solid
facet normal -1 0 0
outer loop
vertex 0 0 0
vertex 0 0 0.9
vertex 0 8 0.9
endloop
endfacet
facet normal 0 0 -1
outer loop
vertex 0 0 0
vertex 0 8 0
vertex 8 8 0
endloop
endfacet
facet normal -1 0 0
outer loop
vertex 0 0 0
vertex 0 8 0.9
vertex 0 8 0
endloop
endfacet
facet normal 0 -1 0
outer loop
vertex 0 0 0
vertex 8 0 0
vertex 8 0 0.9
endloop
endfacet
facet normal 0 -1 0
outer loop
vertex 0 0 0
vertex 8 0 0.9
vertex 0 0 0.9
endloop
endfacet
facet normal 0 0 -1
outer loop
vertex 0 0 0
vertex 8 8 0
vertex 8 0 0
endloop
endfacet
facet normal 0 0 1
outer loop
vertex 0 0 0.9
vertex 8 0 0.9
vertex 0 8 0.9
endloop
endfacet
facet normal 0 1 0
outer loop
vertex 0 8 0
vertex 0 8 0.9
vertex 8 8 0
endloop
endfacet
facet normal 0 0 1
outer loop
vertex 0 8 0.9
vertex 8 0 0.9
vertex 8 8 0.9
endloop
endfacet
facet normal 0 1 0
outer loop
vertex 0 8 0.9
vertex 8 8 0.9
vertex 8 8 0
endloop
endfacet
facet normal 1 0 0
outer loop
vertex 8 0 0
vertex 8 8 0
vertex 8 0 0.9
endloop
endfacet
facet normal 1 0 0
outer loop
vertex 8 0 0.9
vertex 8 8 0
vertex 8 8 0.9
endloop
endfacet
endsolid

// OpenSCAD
/* Warning, this is a very basic generator with a lot of approximation 
input data : [VQFN, VYX, 8x8x0.9mm, 68, , A, C04-00354A]
generated by com.zoubworld.electronics.cad.model3d.Basic
Date : Sun Feb 15 10:50:48 CET 2026
*/

//body
color("black")
translate([0,0,0])
cube([8.0,8.0,0.9], center=false);
